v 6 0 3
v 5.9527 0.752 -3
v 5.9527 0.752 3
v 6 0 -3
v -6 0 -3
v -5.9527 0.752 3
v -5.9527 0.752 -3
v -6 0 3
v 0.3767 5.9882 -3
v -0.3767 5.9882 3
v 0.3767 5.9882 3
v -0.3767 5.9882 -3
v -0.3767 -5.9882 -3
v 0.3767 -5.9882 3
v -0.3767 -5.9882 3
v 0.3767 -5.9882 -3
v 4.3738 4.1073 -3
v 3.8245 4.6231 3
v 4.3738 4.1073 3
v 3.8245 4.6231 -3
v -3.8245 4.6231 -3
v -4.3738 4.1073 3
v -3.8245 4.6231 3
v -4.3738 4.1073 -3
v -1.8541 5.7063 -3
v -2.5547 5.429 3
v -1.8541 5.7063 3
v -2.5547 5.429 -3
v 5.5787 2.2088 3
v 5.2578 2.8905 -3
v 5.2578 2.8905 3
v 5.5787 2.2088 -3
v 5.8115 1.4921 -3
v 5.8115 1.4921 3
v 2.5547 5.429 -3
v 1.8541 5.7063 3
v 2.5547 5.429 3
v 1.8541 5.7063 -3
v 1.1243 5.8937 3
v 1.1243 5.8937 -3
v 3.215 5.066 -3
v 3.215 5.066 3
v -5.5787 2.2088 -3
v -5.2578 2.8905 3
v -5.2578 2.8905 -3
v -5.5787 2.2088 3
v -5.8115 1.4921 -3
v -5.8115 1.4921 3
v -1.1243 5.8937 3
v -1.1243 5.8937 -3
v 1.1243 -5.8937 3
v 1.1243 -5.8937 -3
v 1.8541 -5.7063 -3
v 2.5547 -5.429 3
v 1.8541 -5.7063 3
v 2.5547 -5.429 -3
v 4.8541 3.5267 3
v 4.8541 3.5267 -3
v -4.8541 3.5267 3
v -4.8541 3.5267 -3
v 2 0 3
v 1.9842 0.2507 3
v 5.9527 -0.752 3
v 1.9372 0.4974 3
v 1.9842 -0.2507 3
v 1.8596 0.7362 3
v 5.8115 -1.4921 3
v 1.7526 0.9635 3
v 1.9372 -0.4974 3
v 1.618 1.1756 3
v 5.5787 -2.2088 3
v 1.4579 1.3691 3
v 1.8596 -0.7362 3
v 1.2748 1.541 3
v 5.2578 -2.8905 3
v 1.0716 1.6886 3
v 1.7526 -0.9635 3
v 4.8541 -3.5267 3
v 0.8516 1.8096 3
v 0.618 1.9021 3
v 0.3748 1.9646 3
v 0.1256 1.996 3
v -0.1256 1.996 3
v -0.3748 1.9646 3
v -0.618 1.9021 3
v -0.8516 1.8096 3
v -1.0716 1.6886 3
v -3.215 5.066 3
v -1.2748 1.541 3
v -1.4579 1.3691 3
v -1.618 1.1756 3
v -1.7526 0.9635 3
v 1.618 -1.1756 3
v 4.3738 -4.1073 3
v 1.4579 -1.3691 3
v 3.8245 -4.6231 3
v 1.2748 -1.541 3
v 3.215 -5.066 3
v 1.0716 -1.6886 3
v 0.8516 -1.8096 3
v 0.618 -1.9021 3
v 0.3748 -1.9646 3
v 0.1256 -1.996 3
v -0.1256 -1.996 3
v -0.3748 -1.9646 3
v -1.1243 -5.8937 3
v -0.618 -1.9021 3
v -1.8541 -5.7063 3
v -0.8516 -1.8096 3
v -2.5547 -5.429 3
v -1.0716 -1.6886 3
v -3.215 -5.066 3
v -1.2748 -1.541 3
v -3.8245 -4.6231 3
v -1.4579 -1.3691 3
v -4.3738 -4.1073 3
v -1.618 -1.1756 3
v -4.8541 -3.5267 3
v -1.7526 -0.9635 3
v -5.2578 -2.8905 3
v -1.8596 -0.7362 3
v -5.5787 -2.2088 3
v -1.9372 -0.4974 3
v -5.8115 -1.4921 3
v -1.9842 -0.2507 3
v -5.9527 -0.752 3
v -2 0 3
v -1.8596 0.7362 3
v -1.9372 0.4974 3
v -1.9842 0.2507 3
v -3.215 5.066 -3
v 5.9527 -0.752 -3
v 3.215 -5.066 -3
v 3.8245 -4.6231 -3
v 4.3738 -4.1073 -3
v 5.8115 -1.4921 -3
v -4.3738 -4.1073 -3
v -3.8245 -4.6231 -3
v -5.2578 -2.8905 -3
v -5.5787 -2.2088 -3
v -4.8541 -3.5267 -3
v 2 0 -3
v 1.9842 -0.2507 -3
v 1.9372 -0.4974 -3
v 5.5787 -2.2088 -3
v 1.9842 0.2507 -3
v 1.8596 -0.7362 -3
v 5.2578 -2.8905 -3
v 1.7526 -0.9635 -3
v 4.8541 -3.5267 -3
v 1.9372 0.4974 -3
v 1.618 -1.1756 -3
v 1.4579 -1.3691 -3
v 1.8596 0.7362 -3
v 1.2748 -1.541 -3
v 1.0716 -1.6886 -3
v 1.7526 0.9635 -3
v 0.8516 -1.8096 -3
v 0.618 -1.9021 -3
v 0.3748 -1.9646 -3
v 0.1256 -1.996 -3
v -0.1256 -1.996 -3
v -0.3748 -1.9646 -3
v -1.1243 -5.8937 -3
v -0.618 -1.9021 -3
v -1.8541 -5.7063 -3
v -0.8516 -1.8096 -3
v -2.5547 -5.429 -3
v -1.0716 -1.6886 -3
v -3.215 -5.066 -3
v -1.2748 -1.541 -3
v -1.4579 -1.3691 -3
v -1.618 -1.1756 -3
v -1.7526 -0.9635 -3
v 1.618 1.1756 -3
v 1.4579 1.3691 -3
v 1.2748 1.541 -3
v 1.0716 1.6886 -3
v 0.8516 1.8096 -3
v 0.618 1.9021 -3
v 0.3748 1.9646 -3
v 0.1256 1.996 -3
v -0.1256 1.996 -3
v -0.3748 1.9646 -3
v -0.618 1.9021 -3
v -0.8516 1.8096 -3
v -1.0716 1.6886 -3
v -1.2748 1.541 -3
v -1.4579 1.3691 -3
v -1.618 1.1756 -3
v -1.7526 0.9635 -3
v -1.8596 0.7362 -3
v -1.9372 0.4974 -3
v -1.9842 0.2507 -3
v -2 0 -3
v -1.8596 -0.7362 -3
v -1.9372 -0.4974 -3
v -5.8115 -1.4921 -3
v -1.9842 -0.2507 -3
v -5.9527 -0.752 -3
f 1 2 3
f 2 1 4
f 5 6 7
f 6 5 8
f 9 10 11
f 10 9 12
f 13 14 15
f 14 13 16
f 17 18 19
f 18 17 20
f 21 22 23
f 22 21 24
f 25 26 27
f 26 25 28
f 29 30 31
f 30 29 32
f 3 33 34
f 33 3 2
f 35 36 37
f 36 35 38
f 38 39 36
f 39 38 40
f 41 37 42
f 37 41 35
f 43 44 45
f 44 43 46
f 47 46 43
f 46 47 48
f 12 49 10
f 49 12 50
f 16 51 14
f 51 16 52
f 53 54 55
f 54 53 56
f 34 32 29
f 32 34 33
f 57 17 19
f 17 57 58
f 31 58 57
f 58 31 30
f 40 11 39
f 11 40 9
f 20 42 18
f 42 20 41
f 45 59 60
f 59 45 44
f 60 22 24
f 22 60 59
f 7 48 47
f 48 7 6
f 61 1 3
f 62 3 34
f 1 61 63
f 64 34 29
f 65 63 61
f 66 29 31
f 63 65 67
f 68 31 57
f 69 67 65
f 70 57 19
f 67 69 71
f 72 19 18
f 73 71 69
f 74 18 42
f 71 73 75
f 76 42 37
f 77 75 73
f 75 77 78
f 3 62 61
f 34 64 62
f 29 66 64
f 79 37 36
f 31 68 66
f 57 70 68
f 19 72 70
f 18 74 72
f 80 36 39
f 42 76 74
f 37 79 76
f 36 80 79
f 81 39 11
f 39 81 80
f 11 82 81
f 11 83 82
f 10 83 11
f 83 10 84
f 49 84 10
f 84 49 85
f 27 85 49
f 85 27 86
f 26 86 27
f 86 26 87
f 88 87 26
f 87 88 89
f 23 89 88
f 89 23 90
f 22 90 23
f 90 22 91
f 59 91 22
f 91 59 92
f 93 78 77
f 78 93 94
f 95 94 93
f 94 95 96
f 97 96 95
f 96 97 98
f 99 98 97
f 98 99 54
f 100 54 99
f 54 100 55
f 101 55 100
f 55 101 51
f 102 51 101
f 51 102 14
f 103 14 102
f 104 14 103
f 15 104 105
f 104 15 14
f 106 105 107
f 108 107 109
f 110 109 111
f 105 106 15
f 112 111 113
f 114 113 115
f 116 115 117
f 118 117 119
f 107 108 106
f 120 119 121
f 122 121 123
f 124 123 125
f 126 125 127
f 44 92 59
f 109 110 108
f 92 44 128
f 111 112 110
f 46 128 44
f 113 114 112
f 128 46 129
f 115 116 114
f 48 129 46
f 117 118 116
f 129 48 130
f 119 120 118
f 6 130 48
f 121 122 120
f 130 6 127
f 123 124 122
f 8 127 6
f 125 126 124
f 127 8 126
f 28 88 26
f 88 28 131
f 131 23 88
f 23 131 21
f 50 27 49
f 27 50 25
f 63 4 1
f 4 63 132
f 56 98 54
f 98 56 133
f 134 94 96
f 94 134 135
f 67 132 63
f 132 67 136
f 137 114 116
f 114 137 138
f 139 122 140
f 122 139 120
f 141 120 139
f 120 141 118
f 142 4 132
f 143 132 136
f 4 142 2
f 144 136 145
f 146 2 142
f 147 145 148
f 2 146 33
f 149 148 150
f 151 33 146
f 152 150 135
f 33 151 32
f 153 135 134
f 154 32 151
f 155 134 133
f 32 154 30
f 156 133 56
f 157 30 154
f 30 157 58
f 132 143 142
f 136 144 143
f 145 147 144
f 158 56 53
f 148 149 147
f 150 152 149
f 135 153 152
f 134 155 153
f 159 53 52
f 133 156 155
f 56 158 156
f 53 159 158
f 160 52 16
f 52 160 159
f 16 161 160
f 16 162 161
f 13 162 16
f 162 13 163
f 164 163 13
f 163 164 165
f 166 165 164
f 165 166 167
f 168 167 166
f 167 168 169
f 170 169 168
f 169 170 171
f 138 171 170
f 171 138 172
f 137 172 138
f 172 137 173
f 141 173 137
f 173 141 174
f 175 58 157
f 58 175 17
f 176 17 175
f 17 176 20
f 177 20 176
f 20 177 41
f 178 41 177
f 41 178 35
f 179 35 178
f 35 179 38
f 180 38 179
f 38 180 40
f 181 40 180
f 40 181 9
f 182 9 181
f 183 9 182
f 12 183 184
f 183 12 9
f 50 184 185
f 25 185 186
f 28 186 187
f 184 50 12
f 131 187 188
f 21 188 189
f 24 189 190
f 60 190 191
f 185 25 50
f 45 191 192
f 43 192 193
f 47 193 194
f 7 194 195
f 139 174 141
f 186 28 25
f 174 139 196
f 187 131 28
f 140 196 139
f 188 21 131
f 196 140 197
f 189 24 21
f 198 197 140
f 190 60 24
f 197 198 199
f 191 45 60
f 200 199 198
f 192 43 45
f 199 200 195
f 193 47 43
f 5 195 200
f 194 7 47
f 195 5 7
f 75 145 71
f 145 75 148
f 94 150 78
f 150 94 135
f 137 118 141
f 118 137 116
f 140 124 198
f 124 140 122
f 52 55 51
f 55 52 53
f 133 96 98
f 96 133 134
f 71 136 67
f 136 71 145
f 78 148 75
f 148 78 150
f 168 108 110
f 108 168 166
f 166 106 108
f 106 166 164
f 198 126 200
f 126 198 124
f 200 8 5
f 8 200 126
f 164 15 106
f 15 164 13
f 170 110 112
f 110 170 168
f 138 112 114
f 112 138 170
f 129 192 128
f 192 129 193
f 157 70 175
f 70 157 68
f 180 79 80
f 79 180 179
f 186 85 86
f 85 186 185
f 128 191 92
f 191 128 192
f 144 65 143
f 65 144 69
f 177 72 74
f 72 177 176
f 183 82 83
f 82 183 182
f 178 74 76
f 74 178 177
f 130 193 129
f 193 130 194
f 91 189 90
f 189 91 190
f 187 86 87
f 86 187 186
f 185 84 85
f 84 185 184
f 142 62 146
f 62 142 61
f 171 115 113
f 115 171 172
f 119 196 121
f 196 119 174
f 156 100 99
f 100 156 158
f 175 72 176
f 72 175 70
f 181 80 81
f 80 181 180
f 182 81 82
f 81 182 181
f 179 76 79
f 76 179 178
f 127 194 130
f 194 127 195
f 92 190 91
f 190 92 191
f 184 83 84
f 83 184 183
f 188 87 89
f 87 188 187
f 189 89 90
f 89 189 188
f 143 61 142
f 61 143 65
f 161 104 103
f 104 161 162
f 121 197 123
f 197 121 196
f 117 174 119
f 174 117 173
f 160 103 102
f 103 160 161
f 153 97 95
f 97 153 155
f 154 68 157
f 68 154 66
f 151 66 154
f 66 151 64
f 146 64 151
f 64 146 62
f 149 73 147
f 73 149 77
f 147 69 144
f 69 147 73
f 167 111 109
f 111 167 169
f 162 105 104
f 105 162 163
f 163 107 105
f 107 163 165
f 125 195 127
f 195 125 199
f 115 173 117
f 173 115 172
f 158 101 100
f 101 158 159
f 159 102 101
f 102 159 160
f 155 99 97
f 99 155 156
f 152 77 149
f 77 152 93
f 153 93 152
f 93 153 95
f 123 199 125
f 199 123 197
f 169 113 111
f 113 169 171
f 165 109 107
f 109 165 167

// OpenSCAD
$fn = 50;


difference() {
	union() {
		translate(v = [0, 0, -3.0000000000]) {
			cylinder(h = 6, r = 6.0000000000);
		}
	}
	union() {
		translate(v = [0, 0, -100.0000000000]) {
			cylinder(h = 200, r = 2);
		}
	}
}
